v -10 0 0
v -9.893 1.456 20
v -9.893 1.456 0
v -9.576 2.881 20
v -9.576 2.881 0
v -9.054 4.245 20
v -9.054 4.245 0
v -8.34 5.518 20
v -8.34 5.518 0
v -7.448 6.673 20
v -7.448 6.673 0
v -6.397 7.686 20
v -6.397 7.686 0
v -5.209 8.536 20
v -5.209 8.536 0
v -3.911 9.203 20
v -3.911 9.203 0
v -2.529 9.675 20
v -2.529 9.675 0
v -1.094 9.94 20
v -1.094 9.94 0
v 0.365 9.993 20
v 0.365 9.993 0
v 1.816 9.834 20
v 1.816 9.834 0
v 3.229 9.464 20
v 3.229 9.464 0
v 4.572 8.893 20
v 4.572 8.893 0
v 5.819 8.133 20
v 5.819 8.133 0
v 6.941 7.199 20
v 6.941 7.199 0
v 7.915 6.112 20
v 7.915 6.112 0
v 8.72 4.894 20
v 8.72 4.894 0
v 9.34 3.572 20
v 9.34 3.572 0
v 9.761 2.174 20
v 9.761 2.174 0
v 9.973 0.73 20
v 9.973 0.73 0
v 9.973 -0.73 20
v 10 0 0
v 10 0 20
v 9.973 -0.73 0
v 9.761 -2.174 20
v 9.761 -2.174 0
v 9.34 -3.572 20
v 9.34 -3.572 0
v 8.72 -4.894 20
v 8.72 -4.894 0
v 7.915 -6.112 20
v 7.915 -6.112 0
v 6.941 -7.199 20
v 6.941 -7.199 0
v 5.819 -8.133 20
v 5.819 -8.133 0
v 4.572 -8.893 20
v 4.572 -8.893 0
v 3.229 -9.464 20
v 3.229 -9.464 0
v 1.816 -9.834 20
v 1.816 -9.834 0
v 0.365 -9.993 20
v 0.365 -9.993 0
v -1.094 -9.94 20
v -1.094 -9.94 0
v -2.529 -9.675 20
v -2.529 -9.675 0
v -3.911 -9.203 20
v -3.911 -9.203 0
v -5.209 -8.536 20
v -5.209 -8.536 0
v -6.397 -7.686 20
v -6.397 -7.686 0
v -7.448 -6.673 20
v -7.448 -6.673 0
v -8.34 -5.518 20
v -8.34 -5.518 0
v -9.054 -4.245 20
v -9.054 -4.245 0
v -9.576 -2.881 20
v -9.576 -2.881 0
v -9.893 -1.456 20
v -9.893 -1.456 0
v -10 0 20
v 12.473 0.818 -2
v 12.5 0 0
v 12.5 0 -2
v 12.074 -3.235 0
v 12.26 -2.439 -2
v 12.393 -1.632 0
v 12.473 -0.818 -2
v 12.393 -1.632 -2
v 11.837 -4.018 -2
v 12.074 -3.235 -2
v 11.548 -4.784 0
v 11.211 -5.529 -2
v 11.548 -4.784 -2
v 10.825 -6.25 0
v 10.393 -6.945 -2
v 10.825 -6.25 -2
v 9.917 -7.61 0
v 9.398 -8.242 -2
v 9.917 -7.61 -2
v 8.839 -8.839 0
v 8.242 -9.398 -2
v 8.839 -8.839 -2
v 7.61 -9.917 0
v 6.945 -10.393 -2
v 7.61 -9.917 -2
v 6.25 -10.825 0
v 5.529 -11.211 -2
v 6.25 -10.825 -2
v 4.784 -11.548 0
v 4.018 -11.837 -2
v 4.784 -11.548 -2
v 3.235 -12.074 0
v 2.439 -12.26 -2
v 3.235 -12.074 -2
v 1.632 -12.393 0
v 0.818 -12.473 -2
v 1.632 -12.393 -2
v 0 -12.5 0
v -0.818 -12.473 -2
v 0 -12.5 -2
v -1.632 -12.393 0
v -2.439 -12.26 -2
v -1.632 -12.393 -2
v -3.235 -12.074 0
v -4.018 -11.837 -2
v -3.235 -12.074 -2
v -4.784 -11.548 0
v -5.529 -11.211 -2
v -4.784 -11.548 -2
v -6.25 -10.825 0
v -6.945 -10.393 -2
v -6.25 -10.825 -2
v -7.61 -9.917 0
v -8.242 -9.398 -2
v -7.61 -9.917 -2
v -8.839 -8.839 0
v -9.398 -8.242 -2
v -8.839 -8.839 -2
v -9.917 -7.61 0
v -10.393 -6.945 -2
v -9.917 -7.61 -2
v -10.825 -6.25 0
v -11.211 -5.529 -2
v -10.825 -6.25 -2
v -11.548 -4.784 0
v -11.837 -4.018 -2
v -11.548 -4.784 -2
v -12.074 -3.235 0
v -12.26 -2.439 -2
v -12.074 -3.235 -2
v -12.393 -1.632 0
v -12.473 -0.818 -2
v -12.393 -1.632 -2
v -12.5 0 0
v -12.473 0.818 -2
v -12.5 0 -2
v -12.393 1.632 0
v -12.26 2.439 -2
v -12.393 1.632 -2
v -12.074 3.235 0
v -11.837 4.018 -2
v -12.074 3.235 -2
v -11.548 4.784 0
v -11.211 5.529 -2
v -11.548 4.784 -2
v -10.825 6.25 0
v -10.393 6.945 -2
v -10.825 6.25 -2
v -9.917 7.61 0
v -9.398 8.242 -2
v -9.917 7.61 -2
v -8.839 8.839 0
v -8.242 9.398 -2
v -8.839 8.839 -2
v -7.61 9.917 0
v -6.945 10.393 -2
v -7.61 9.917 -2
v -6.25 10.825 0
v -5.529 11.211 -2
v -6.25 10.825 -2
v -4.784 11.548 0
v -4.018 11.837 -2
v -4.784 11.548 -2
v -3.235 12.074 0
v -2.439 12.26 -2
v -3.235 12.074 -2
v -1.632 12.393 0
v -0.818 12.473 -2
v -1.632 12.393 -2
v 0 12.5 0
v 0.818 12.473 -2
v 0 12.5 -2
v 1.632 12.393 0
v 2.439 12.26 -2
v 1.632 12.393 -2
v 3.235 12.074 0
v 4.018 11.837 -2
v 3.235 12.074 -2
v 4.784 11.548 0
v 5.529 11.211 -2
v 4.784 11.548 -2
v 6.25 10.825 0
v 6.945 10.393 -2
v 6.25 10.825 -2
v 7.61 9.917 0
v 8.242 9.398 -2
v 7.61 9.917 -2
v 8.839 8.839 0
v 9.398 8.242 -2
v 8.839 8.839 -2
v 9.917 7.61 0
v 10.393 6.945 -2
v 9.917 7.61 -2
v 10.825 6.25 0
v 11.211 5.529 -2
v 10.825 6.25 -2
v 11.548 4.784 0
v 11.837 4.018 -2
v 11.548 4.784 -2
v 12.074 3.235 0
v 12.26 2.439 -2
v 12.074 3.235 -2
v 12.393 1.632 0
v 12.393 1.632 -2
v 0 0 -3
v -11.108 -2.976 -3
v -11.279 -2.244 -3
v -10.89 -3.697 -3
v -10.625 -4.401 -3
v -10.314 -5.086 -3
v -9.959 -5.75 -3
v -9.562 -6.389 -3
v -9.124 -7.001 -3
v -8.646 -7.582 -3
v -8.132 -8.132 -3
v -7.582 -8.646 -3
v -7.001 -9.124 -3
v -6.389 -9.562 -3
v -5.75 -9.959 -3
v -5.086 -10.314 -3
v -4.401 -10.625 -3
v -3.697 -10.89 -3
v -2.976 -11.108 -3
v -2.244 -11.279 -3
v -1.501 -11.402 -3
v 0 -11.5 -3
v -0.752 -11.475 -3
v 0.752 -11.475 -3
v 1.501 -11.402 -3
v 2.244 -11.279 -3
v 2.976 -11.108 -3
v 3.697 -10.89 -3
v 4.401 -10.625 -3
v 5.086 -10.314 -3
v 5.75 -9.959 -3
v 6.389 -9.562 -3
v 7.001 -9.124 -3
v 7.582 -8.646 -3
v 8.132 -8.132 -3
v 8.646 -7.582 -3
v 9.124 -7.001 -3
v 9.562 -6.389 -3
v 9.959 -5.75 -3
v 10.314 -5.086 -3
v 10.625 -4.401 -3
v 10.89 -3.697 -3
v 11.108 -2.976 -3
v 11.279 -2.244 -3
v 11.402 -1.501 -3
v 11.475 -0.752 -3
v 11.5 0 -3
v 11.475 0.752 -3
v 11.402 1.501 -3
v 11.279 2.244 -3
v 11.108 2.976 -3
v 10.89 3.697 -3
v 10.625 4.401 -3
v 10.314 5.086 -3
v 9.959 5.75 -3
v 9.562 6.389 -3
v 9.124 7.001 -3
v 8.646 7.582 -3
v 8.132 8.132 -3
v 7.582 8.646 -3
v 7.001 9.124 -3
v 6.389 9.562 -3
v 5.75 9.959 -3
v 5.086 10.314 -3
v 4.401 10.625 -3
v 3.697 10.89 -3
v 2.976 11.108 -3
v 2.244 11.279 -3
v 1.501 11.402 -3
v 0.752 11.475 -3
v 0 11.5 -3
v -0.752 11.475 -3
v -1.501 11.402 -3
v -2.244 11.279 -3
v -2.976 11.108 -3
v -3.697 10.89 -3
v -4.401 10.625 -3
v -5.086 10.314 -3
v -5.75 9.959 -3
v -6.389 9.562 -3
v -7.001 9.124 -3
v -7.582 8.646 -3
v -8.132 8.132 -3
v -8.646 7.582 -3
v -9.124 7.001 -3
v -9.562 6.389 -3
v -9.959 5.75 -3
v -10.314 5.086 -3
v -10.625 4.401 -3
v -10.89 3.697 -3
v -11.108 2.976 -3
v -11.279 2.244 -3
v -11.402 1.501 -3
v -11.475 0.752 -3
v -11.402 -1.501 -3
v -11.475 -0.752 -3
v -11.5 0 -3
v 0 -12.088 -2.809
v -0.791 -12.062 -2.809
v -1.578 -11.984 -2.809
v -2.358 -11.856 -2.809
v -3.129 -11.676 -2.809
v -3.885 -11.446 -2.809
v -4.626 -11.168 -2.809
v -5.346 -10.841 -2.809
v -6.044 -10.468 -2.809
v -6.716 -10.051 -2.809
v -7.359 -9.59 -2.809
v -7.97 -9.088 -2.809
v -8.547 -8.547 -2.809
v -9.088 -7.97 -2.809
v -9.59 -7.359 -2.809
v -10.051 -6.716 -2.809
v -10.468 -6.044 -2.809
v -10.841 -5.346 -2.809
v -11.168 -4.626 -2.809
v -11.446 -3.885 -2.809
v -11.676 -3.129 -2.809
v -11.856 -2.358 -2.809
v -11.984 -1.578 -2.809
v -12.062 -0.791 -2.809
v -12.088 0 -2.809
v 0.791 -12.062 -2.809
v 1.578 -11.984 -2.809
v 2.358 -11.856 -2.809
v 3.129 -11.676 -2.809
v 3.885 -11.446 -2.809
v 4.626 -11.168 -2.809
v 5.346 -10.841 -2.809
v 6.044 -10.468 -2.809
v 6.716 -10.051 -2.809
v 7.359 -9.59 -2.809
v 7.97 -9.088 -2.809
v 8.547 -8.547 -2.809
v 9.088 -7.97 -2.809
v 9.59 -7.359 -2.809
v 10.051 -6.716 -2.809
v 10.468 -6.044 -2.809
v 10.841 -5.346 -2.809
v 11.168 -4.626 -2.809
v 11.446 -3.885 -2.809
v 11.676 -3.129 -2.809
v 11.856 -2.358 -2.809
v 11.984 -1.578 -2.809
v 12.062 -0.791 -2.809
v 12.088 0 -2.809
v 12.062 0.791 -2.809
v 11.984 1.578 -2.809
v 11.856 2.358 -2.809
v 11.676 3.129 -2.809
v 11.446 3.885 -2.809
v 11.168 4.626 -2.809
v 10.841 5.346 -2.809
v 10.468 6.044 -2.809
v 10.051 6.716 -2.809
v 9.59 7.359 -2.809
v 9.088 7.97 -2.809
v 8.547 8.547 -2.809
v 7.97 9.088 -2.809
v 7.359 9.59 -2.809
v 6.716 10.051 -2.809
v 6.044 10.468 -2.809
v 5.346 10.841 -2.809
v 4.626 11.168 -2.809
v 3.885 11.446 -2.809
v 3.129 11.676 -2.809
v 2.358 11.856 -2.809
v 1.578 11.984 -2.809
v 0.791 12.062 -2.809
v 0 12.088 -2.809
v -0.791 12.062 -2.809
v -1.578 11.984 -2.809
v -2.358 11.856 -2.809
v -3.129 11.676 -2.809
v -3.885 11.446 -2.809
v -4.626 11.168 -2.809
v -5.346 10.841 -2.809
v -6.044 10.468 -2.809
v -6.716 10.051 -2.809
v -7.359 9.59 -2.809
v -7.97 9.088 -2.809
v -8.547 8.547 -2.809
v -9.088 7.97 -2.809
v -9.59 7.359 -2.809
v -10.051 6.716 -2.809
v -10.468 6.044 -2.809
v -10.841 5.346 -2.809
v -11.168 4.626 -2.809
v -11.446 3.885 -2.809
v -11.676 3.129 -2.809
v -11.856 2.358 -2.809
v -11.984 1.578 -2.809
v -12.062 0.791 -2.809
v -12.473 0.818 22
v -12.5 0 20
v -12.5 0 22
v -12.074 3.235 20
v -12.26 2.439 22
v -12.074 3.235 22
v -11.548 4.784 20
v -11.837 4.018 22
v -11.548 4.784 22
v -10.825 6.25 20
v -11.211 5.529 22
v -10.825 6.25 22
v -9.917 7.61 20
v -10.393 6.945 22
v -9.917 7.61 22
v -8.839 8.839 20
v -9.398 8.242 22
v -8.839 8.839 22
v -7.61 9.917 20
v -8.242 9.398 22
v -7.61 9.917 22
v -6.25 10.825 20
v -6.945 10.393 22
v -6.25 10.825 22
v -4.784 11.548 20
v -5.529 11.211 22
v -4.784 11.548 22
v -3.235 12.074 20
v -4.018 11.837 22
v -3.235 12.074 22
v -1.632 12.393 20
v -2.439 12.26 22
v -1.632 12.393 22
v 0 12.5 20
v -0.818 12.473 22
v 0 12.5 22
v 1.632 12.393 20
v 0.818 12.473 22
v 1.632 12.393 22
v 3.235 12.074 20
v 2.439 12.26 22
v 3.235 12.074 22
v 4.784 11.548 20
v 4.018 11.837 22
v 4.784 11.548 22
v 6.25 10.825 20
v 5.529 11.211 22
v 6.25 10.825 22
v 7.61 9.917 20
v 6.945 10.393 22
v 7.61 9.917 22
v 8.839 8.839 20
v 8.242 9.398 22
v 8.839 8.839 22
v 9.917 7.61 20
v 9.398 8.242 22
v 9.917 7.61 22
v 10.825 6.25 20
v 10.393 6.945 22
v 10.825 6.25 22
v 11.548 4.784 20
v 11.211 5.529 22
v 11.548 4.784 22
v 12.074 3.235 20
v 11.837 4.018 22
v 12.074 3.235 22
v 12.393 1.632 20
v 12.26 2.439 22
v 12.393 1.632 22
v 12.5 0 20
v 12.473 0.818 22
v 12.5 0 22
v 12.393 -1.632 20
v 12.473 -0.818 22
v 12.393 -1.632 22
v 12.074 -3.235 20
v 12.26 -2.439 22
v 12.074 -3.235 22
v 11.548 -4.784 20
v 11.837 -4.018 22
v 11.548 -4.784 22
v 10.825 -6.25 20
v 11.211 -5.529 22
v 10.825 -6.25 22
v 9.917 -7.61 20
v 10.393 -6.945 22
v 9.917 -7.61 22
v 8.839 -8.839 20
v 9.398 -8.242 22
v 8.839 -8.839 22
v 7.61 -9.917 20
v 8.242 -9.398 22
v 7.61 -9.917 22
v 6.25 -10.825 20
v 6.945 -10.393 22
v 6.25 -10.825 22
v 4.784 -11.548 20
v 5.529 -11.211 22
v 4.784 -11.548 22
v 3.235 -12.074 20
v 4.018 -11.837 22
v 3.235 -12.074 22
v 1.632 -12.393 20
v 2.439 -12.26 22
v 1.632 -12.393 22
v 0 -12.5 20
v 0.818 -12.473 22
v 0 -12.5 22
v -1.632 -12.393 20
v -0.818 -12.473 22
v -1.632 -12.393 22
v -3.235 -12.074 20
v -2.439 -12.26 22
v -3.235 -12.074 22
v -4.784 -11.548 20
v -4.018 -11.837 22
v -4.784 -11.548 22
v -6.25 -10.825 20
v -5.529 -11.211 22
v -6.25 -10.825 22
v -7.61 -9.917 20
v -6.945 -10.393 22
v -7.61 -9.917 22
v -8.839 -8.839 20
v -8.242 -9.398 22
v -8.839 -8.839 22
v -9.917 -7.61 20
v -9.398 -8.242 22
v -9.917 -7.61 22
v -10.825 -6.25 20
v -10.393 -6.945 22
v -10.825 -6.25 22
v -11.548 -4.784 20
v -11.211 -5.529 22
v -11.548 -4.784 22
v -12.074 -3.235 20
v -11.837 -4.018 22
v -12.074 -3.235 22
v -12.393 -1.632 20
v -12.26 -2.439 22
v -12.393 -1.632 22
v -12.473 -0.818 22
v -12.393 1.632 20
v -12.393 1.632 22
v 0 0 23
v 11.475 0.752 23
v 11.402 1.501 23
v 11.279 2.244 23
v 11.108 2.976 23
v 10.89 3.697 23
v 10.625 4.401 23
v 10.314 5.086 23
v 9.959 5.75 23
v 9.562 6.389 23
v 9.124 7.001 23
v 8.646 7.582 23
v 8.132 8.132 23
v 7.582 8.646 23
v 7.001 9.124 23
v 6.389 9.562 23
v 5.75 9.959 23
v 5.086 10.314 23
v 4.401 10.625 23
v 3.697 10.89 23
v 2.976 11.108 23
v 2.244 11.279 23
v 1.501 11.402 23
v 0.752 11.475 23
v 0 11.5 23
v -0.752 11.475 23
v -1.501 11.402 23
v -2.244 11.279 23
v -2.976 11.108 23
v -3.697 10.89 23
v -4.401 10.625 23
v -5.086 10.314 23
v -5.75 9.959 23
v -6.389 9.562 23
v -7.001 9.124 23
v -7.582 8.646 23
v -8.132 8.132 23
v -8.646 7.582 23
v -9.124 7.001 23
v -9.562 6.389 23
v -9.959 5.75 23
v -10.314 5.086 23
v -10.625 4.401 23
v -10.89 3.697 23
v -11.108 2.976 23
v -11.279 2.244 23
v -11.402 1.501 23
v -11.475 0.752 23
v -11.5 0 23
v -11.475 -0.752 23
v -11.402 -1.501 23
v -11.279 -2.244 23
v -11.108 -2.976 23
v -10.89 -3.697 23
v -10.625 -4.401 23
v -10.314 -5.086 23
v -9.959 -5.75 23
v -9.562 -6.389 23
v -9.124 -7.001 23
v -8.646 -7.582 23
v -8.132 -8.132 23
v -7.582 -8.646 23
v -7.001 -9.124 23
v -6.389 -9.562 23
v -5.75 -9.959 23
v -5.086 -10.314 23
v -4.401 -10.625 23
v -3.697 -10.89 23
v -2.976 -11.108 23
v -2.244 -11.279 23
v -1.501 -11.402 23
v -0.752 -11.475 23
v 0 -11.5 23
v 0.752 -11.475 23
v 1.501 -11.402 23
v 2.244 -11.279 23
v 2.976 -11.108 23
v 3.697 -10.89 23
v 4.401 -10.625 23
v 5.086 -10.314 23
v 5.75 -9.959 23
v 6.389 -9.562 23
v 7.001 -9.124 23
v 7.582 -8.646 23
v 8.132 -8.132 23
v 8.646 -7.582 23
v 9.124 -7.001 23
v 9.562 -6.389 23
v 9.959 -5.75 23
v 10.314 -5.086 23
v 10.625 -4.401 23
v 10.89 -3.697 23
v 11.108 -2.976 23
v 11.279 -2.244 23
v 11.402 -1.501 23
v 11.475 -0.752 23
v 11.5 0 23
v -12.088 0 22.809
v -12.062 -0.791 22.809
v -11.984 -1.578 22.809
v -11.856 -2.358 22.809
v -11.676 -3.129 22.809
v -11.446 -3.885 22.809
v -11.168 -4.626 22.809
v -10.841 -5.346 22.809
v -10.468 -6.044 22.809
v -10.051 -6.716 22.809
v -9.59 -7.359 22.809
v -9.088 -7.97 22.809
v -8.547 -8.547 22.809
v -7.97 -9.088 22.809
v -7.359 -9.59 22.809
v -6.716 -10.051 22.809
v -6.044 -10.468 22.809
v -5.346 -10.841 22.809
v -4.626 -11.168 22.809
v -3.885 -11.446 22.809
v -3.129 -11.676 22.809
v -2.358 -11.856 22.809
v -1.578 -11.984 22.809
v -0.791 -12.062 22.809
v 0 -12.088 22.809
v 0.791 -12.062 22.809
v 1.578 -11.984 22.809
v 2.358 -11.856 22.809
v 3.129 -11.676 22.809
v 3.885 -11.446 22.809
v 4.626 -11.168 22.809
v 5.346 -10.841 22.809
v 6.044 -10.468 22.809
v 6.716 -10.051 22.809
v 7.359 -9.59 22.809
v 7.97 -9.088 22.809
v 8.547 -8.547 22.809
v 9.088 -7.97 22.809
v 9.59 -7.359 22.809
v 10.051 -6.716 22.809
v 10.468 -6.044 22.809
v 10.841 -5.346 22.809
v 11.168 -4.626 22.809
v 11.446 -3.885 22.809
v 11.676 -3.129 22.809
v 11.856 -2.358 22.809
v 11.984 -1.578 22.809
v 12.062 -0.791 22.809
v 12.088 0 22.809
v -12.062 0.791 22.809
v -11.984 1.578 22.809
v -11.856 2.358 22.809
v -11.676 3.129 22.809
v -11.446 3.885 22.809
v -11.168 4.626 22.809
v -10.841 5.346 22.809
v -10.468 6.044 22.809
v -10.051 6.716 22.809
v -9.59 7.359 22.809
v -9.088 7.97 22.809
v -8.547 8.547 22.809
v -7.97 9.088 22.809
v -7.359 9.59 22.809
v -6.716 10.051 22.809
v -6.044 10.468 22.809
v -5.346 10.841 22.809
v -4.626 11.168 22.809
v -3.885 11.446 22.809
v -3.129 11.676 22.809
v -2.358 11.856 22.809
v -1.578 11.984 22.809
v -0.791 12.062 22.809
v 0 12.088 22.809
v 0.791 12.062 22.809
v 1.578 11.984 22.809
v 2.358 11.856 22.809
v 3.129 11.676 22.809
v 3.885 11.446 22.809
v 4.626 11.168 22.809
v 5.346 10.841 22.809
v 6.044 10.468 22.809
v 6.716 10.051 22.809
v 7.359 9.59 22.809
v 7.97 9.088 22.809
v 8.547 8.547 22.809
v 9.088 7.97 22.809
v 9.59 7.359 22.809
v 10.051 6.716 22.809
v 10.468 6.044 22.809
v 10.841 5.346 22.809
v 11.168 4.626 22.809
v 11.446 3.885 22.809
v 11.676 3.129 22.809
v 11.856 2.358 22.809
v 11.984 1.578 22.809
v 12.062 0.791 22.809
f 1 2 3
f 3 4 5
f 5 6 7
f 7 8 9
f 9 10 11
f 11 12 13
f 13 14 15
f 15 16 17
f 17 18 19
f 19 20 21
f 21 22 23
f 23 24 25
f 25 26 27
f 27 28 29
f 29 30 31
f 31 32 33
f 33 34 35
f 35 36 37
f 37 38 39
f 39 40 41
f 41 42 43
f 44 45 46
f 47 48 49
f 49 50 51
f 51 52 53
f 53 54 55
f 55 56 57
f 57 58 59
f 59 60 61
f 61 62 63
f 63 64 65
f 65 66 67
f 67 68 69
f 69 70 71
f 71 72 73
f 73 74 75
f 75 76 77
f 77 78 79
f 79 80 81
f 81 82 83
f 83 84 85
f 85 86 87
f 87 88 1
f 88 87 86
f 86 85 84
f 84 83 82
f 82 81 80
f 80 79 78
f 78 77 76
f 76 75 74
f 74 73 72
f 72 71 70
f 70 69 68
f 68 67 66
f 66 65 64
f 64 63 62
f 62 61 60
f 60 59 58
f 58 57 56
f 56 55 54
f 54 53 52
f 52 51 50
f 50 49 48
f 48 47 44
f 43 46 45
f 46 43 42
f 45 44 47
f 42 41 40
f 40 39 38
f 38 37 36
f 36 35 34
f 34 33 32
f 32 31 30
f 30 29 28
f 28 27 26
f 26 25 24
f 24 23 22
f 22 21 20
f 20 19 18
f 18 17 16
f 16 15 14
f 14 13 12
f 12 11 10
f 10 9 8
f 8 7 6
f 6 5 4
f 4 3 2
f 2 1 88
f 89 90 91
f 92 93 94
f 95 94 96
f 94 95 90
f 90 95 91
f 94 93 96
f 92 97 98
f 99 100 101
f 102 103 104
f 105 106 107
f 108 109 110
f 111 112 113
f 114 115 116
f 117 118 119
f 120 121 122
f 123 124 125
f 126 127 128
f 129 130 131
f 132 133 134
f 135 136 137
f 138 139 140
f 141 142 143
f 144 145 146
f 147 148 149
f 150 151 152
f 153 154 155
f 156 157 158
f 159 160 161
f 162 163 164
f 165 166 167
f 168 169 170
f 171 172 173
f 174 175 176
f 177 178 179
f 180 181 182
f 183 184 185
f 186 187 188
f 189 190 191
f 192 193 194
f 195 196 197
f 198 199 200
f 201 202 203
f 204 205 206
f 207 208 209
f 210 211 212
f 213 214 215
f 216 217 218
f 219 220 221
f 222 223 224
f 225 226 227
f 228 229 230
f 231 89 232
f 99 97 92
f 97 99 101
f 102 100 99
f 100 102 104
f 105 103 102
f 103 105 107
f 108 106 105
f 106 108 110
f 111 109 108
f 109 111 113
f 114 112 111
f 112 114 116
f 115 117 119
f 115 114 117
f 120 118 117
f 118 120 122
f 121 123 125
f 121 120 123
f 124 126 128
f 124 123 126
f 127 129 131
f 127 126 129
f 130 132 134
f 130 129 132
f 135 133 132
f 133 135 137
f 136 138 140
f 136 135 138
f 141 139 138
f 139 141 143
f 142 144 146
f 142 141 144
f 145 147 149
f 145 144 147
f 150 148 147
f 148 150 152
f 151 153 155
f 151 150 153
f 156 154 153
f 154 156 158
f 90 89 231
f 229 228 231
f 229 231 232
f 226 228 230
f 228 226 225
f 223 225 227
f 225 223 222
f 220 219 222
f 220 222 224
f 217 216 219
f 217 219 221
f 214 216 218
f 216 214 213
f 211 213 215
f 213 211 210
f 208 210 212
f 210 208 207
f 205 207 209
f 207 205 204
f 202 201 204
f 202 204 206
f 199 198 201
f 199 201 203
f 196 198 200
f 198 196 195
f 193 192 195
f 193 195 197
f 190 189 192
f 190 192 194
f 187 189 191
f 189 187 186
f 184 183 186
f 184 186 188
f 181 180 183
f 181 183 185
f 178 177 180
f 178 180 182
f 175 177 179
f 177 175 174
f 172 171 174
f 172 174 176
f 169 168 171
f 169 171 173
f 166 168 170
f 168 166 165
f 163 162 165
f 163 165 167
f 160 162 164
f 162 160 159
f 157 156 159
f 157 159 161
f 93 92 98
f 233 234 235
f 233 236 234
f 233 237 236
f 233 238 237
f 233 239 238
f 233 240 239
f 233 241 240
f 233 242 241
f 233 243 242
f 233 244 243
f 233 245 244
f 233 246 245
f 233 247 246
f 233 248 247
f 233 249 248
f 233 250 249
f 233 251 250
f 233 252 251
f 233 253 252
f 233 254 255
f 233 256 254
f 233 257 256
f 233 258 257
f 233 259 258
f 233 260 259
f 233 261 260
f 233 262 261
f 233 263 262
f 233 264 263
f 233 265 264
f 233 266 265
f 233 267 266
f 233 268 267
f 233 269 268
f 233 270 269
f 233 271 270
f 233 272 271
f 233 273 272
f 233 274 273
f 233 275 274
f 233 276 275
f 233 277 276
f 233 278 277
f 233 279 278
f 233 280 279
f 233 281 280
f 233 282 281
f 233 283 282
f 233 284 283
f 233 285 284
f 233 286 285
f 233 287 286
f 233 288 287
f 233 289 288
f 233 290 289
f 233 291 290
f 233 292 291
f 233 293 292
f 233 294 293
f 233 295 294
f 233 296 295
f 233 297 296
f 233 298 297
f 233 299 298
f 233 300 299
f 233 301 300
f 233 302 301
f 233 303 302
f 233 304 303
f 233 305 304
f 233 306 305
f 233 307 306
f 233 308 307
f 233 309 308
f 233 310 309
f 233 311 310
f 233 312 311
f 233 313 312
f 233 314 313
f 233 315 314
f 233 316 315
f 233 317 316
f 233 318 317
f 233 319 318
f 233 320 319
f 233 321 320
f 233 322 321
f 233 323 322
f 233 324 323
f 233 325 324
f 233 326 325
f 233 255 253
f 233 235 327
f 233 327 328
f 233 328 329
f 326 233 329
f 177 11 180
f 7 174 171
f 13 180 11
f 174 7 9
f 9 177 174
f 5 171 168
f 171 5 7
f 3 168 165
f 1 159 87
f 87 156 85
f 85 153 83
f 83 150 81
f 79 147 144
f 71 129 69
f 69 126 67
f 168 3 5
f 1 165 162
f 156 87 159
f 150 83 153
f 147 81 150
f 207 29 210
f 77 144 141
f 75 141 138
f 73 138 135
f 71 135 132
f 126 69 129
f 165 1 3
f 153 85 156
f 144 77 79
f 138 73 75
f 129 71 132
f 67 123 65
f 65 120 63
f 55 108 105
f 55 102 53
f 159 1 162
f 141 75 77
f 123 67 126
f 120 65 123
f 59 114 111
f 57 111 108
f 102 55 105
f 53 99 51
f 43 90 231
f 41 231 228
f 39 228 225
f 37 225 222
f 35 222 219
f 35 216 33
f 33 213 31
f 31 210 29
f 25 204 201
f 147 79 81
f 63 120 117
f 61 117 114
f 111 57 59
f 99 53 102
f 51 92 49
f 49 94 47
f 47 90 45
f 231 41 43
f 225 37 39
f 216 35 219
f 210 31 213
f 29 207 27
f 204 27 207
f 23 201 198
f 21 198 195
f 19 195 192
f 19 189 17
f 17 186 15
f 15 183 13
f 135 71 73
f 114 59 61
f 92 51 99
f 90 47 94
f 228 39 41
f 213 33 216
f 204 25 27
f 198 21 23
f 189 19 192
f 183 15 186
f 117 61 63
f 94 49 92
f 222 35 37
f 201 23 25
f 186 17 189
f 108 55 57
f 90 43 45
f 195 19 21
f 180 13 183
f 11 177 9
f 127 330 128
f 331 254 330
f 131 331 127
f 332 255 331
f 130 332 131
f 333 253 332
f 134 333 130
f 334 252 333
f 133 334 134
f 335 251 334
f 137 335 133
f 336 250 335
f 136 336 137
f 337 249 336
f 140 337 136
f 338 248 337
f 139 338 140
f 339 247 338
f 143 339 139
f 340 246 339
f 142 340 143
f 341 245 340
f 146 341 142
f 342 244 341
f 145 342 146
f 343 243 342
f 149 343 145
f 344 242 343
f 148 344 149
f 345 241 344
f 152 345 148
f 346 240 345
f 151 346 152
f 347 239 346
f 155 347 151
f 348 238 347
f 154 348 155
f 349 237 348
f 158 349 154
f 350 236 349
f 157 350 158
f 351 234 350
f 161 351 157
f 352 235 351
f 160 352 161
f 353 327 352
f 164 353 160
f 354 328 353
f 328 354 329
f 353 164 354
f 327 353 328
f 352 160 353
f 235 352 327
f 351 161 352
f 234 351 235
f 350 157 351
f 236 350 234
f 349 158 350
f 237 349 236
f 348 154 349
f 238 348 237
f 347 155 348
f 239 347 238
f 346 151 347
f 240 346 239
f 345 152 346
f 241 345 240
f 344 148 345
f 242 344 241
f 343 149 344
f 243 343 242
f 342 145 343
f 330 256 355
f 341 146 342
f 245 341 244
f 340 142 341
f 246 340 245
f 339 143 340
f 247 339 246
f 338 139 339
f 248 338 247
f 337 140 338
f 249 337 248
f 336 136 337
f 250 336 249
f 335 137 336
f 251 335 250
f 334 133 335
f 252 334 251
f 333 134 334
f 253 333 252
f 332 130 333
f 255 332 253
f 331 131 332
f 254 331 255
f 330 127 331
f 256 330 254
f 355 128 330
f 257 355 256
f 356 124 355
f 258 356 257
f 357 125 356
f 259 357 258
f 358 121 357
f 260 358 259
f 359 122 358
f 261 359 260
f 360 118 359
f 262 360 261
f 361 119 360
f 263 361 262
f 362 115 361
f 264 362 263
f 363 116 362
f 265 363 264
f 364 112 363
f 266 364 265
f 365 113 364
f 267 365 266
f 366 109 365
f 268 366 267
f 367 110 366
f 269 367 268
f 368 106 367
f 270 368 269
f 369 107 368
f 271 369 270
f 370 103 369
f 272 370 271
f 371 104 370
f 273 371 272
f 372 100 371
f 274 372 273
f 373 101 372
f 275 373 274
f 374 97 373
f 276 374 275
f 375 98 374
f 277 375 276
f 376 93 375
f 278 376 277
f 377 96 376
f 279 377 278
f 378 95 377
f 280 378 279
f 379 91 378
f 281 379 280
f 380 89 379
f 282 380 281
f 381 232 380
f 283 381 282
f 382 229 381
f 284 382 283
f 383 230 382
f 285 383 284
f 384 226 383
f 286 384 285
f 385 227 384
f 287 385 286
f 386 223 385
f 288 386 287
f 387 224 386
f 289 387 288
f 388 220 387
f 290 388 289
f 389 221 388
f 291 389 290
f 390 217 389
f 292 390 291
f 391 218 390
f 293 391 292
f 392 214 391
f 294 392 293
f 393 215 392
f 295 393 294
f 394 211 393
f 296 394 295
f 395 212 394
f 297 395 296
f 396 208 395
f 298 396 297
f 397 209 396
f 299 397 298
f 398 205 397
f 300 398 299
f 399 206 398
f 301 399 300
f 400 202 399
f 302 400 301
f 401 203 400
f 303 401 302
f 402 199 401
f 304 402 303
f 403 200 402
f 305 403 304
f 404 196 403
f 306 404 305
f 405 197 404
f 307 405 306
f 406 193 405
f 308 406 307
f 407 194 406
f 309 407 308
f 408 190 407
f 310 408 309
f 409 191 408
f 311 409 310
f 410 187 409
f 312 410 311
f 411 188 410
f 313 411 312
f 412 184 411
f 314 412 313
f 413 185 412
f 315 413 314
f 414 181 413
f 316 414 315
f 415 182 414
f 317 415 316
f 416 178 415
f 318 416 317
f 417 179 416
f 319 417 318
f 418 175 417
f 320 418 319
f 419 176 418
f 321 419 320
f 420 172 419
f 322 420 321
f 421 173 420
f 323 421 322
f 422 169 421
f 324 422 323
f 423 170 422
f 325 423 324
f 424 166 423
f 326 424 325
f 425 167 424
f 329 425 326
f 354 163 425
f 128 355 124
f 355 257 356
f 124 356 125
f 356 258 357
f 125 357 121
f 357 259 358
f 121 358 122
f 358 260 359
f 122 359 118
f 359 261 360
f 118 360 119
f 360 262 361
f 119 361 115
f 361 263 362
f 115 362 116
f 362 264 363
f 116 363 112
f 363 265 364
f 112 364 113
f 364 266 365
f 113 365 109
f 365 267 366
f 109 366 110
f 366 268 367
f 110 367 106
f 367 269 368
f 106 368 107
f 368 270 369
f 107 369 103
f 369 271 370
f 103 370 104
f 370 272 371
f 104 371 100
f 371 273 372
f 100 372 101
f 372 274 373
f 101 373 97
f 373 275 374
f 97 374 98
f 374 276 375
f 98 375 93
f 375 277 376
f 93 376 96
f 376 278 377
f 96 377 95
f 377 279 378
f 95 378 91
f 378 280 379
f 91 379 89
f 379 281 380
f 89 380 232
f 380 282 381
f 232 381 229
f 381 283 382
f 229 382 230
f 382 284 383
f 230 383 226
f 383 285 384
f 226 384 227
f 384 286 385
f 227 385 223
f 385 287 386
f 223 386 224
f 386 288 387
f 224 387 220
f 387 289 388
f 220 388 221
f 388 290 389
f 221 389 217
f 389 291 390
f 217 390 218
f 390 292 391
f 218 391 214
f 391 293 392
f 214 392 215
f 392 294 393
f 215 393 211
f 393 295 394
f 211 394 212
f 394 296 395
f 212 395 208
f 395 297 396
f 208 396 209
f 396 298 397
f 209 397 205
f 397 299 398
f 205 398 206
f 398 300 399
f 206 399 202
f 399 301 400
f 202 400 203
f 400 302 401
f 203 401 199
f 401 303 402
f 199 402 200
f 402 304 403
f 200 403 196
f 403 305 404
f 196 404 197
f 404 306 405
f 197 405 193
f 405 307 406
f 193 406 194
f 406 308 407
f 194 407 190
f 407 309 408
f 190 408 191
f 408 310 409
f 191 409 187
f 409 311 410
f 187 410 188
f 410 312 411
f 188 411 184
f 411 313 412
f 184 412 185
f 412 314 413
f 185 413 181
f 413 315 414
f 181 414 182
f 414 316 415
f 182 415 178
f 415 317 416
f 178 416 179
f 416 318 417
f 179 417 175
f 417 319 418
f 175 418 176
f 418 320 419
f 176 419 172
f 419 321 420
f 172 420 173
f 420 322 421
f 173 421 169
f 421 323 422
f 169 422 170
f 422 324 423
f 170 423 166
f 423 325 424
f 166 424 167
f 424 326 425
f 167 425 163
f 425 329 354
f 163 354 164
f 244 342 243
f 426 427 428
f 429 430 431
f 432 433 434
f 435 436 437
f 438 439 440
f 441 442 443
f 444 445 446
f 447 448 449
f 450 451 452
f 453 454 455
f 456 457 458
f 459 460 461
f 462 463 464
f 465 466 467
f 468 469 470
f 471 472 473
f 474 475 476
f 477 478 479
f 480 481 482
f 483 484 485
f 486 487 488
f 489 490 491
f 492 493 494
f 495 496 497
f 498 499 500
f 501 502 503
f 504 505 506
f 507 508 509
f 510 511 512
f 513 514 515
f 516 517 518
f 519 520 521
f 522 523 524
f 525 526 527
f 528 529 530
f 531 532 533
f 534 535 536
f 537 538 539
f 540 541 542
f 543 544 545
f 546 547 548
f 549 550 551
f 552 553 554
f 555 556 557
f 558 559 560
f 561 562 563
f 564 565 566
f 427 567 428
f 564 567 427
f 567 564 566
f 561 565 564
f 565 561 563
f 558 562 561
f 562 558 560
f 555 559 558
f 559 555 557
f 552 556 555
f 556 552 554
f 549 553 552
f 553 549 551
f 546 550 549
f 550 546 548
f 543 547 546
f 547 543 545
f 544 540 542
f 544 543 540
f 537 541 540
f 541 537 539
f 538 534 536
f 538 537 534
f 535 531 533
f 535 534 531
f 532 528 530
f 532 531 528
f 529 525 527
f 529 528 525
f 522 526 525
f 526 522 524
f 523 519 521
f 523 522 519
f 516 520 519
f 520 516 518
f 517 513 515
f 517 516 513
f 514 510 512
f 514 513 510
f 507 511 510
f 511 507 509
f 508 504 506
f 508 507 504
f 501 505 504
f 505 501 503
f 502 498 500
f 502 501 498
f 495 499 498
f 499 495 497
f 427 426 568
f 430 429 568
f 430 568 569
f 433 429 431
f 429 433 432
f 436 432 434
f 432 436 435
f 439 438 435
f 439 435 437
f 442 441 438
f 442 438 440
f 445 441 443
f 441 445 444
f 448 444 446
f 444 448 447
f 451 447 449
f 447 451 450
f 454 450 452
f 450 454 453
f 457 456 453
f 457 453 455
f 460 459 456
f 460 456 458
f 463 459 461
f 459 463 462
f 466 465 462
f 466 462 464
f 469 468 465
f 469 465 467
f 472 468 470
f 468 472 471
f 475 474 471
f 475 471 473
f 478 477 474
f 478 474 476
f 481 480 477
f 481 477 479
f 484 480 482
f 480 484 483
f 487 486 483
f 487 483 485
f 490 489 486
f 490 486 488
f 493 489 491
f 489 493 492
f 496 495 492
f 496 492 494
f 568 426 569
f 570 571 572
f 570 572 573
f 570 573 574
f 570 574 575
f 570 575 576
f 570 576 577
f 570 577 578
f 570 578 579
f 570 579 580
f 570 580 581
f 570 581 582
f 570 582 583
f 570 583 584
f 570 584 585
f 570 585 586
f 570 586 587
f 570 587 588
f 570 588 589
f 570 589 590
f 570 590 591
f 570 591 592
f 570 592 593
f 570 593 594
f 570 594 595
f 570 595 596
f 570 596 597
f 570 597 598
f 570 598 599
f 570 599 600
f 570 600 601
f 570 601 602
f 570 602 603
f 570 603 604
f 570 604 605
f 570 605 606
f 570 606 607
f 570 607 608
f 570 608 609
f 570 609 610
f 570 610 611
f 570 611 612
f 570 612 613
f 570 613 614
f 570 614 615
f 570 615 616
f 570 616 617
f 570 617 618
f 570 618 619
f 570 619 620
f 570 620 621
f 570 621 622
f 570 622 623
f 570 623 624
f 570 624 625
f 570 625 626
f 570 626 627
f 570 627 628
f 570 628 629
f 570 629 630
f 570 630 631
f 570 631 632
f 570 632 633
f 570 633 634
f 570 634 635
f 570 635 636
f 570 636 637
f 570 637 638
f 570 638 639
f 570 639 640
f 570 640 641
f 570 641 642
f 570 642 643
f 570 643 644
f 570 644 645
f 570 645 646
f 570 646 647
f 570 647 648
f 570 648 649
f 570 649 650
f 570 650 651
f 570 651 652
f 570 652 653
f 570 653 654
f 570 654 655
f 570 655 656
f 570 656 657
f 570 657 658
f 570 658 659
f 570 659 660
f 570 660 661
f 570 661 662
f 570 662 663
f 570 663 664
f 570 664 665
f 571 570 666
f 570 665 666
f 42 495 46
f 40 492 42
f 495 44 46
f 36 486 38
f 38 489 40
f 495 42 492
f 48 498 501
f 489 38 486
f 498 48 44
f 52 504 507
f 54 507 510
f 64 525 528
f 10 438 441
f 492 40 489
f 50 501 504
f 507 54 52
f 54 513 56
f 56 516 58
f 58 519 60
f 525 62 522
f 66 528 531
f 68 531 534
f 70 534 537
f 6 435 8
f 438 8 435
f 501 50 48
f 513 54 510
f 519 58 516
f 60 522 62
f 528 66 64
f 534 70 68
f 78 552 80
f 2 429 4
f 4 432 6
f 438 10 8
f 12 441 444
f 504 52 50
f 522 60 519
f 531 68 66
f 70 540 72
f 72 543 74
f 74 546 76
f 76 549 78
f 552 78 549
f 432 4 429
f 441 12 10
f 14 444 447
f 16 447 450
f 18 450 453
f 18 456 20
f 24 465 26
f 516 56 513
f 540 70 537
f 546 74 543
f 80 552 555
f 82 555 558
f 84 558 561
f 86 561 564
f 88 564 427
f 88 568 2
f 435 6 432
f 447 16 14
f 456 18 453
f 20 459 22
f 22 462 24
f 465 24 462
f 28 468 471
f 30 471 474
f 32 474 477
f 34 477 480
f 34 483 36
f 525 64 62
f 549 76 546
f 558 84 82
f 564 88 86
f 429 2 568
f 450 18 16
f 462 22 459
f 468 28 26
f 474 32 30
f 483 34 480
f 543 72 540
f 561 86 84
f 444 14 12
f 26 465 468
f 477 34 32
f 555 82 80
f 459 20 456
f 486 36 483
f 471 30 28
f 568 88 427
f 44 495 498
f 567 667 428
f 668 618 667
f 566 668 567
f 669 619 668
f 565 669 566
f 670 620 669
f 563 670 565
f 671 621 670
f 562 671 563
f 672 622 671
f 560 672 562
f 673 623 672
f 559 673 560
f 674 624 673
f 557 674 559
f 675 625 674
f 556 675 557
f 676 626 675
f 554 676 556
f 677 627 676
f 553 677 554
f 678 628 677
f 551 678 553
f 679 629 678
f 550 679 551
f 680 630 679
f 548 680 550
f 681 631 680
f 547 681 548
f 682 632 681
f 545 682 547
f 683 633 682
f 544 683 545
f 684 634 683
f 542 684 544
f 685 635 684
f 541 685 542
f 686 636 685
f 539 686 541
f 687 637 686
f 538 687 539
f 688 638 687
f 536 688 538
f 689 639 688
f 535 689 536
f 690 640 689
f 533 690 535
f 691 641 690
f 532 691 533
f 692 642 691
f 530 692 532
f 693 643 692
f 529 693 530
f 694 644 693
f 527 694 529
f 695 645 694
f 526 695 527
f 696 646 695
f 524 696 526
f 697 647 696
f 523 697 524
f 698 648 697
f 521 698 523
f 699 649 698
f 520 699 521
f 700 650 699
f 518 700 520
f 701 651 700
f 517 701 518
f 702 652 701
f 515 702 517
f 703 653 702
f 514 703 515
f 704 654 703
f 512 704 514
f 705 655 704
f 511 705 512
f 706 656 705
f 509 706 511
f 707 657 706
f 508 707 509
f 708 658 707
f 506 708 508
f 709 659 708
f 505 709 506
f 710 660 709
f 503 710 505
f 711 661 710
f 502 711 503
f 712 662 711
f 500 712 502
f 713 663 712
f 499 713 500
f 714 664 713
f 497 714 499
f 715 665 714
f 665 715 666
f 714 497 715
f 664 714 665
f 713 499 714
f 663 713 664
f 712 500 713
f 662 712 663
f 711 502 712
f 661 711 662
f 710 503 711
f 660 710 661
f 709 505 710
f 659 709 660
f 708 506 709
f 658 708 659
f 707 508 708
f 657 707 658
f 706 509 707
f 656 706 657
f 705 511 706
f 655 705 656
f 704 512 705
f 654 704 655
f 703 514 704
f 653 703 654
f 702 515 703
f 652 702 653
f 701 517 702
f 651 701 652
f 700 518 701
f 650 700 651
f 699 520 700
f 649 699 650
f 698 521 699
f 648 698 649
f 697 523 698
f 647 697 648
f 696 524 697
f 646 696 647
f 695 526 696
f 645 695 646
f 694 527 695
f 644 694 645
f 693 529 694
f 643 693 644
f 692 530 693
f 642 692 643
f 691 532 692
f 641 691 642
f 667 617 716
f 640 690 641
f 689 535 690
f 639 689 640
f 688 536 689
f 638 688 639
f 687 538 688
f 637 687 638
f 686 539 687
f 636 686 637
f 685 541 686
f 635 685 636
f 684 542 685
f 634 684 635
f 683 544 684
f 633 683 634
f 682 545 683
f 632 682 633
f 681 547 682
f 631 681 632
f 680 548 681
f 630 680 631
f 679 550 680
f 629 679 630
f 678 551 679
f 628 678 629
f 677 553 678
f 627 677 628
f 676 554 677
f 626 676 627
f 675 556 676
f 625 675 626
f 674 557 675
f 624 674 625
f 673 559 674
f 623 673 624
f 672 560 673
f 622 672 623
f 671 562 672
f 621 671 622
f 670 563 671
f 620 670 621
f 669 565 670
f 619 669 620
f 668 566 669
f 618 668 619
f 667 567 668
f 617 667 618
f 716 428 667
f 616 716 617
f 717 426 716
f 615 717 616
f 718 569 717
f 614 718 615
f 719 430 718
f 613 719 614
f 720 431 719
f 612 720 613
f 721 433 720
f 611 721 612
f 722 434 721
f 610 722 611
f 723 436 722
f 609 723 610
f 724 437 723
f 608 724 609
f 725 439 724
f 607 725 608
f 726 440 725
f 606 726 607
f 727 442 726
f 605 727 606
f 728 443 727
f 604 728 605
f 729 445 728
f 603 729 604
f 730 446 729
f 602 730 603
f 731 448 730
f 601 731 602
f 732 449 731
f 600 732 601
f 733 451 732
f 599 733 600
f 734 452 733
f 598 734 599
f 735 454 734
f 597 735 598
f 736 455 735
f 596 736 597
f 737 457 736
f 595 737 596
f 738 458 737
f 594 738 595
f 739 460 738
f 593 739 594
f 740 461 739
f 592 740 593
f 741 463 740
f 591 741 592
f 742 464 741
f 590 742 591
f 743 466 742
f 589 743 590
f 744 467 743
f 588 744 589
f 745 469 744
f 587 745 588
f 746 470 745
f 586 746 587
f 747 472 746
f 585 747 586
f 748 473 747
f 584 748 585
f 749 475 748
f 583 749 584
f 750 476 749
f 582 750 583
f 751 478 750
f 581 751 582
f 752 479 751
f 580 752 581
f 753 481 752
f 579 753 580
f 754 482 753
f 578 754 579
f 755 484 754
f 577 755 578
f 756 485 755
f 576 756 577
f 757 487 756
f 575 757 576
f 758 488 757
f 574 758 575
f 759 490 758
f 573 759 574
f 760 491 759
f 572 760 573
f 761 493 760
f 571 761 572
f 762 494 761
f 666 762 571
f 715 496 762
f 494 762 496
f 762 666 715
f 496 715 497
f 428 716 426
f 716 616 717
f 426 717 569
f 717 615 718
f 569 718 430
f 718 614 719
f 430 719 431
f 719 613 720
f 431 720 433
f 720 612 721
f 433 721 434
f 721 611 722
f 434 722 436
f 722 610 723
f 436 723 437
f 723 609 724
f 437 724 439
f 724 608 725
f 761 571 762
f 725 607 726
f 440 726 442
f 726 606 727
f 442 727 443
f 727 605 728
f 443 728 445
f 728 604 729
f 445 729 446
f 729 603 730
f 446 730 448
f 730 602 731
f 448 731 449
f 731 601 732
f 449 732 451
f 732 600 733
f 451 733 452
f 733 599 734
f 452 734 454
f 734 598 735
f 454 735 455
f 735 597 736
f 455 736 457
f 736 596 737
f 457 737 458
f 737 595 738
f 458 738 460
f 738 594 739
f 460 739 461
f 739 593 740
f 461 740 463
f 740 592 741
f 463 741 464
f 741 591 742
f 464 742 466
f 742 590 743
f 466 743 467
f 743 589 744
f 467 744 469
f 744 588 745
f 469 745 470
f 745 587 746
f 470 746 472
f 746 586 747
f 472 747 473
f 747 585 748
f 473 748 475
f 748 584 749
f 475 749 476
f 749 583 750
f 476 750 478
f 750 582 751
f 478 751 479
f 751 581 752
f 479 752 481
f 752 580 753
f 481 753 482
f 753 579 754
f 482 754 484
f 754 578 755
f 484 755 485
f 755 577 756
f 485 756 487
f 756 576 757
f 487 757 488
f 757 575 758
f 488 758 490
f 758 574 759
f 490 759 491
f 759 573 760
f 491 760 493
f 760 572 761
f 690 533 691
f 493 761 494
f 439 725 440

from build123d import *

# Parameters (mm, degrees)
SKETCH1_R            = 10
BOSS_EXTRUDE1_DEPTH  = 20
SKETCH2_R            = 12.5
BOSS_EXTRUDE2_DEPTH  = 3
FILLET1_R            = 1
FILLET1_OF_MIRROR1_R = 1


with BuildPart() as part:
    # Sketch1 → Boss-Extrude1 (new body)
    with BuildSketch(Plane.XY):
        Circle(SKETCH1_R)
    extrude(amount=BOSS_EXTRUDE1_DEPTH)

    # Sketch2 → Boss-Extrude2 (add)
    with BuildSketch(Plane(origin=(0, 0, 0), x_dir=(-1, 0, 0), z_dir=(0, 0, -1))):
        Circle(SKETCH2_R)
    boss_extrude2 = extrude(amount=BOSS_EXTRUDE2_DEPTH)

    # Fillet1
    fillet1_edges = [part.edges().sort_by_distance(p)[0] for p in [
        (12.5, 0, -3),
    ]]
    fillet(fillet1_edges, radius=FILLET1_R)

    # Mirror1: Boss-Extrude2 across plane
    add(boss_extrude2.mirror(Plane.XY.offset(10)))

    # Fillet1 of Mirror1
    fillet1_of_mirror1_edges = [part.edges().sort_by_distance(p)[0] for p in [
        (12.5, 0, 23),
    ]]
    fillet(fillet1_of_mirror1_edges, radius=FILLET1_OF_MIRROR1_R)


solid = part.part
